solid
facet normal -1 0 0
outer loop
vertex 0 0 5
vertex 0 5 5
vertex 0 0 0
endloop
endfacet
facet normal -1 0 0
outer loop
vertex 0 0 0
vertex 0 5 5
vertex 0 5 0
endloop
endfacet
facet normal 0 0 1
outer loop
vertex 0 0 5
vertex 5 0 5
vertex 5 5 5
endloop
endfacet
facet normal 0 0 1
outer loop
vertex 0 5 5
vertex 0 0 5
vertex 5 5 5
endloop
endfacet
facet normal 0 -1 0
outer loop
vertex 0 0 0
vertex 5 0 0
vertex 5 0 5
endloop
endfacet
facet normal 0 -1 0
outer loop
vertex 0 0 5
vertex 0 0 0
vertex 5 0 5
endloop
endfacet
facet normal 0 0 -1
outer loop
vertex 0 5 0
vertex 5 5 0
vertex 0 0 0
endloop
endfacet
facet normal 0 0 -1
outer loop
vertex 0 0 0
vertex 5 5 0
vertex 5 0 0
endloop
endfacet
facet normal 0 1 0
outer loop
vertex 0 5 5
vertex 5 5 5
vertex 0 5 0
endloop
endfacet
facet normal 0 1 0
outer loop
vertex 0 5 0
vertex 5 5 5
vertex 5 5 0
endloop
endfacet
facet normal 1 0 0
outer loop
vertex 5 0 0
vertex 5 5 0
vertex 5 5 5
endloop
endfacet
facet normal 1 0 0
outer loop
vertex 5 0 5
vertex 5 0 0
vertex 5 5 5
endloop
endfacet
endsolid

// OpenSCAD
/*
 * OpenSCAD Workshop Examples
 * Copyright (c) 2013-2016 Anar Software LLC. < http://anars.com >
 *
 * This program is free software: you can redistribute it and/or modify it under
 * the terms of the GNU General Public License as published by the Free Software
 * Foundation, either version 3 of the License, or (at your option) any later
 * version.
 *
 * This program is distributed in the hope that it will be useful, but WITHOUT
 * ANY WARRANTY; without even the implied warranty of MERCHANTABILITY or FITNESS
 * FOR A PARTICULAR PURPOSE. See the GNU General Public License for more details.
 *
 * You should have received a copy of the GNU General Public License along with
 * this program. If not, see < http://www.gnu.org/licenses/ >
 *
 */
/*

Creates a cube with sides of that 5 unit length in the first octant.

Parameters :

	cube(size = x);

*/

cube(size = 5);
